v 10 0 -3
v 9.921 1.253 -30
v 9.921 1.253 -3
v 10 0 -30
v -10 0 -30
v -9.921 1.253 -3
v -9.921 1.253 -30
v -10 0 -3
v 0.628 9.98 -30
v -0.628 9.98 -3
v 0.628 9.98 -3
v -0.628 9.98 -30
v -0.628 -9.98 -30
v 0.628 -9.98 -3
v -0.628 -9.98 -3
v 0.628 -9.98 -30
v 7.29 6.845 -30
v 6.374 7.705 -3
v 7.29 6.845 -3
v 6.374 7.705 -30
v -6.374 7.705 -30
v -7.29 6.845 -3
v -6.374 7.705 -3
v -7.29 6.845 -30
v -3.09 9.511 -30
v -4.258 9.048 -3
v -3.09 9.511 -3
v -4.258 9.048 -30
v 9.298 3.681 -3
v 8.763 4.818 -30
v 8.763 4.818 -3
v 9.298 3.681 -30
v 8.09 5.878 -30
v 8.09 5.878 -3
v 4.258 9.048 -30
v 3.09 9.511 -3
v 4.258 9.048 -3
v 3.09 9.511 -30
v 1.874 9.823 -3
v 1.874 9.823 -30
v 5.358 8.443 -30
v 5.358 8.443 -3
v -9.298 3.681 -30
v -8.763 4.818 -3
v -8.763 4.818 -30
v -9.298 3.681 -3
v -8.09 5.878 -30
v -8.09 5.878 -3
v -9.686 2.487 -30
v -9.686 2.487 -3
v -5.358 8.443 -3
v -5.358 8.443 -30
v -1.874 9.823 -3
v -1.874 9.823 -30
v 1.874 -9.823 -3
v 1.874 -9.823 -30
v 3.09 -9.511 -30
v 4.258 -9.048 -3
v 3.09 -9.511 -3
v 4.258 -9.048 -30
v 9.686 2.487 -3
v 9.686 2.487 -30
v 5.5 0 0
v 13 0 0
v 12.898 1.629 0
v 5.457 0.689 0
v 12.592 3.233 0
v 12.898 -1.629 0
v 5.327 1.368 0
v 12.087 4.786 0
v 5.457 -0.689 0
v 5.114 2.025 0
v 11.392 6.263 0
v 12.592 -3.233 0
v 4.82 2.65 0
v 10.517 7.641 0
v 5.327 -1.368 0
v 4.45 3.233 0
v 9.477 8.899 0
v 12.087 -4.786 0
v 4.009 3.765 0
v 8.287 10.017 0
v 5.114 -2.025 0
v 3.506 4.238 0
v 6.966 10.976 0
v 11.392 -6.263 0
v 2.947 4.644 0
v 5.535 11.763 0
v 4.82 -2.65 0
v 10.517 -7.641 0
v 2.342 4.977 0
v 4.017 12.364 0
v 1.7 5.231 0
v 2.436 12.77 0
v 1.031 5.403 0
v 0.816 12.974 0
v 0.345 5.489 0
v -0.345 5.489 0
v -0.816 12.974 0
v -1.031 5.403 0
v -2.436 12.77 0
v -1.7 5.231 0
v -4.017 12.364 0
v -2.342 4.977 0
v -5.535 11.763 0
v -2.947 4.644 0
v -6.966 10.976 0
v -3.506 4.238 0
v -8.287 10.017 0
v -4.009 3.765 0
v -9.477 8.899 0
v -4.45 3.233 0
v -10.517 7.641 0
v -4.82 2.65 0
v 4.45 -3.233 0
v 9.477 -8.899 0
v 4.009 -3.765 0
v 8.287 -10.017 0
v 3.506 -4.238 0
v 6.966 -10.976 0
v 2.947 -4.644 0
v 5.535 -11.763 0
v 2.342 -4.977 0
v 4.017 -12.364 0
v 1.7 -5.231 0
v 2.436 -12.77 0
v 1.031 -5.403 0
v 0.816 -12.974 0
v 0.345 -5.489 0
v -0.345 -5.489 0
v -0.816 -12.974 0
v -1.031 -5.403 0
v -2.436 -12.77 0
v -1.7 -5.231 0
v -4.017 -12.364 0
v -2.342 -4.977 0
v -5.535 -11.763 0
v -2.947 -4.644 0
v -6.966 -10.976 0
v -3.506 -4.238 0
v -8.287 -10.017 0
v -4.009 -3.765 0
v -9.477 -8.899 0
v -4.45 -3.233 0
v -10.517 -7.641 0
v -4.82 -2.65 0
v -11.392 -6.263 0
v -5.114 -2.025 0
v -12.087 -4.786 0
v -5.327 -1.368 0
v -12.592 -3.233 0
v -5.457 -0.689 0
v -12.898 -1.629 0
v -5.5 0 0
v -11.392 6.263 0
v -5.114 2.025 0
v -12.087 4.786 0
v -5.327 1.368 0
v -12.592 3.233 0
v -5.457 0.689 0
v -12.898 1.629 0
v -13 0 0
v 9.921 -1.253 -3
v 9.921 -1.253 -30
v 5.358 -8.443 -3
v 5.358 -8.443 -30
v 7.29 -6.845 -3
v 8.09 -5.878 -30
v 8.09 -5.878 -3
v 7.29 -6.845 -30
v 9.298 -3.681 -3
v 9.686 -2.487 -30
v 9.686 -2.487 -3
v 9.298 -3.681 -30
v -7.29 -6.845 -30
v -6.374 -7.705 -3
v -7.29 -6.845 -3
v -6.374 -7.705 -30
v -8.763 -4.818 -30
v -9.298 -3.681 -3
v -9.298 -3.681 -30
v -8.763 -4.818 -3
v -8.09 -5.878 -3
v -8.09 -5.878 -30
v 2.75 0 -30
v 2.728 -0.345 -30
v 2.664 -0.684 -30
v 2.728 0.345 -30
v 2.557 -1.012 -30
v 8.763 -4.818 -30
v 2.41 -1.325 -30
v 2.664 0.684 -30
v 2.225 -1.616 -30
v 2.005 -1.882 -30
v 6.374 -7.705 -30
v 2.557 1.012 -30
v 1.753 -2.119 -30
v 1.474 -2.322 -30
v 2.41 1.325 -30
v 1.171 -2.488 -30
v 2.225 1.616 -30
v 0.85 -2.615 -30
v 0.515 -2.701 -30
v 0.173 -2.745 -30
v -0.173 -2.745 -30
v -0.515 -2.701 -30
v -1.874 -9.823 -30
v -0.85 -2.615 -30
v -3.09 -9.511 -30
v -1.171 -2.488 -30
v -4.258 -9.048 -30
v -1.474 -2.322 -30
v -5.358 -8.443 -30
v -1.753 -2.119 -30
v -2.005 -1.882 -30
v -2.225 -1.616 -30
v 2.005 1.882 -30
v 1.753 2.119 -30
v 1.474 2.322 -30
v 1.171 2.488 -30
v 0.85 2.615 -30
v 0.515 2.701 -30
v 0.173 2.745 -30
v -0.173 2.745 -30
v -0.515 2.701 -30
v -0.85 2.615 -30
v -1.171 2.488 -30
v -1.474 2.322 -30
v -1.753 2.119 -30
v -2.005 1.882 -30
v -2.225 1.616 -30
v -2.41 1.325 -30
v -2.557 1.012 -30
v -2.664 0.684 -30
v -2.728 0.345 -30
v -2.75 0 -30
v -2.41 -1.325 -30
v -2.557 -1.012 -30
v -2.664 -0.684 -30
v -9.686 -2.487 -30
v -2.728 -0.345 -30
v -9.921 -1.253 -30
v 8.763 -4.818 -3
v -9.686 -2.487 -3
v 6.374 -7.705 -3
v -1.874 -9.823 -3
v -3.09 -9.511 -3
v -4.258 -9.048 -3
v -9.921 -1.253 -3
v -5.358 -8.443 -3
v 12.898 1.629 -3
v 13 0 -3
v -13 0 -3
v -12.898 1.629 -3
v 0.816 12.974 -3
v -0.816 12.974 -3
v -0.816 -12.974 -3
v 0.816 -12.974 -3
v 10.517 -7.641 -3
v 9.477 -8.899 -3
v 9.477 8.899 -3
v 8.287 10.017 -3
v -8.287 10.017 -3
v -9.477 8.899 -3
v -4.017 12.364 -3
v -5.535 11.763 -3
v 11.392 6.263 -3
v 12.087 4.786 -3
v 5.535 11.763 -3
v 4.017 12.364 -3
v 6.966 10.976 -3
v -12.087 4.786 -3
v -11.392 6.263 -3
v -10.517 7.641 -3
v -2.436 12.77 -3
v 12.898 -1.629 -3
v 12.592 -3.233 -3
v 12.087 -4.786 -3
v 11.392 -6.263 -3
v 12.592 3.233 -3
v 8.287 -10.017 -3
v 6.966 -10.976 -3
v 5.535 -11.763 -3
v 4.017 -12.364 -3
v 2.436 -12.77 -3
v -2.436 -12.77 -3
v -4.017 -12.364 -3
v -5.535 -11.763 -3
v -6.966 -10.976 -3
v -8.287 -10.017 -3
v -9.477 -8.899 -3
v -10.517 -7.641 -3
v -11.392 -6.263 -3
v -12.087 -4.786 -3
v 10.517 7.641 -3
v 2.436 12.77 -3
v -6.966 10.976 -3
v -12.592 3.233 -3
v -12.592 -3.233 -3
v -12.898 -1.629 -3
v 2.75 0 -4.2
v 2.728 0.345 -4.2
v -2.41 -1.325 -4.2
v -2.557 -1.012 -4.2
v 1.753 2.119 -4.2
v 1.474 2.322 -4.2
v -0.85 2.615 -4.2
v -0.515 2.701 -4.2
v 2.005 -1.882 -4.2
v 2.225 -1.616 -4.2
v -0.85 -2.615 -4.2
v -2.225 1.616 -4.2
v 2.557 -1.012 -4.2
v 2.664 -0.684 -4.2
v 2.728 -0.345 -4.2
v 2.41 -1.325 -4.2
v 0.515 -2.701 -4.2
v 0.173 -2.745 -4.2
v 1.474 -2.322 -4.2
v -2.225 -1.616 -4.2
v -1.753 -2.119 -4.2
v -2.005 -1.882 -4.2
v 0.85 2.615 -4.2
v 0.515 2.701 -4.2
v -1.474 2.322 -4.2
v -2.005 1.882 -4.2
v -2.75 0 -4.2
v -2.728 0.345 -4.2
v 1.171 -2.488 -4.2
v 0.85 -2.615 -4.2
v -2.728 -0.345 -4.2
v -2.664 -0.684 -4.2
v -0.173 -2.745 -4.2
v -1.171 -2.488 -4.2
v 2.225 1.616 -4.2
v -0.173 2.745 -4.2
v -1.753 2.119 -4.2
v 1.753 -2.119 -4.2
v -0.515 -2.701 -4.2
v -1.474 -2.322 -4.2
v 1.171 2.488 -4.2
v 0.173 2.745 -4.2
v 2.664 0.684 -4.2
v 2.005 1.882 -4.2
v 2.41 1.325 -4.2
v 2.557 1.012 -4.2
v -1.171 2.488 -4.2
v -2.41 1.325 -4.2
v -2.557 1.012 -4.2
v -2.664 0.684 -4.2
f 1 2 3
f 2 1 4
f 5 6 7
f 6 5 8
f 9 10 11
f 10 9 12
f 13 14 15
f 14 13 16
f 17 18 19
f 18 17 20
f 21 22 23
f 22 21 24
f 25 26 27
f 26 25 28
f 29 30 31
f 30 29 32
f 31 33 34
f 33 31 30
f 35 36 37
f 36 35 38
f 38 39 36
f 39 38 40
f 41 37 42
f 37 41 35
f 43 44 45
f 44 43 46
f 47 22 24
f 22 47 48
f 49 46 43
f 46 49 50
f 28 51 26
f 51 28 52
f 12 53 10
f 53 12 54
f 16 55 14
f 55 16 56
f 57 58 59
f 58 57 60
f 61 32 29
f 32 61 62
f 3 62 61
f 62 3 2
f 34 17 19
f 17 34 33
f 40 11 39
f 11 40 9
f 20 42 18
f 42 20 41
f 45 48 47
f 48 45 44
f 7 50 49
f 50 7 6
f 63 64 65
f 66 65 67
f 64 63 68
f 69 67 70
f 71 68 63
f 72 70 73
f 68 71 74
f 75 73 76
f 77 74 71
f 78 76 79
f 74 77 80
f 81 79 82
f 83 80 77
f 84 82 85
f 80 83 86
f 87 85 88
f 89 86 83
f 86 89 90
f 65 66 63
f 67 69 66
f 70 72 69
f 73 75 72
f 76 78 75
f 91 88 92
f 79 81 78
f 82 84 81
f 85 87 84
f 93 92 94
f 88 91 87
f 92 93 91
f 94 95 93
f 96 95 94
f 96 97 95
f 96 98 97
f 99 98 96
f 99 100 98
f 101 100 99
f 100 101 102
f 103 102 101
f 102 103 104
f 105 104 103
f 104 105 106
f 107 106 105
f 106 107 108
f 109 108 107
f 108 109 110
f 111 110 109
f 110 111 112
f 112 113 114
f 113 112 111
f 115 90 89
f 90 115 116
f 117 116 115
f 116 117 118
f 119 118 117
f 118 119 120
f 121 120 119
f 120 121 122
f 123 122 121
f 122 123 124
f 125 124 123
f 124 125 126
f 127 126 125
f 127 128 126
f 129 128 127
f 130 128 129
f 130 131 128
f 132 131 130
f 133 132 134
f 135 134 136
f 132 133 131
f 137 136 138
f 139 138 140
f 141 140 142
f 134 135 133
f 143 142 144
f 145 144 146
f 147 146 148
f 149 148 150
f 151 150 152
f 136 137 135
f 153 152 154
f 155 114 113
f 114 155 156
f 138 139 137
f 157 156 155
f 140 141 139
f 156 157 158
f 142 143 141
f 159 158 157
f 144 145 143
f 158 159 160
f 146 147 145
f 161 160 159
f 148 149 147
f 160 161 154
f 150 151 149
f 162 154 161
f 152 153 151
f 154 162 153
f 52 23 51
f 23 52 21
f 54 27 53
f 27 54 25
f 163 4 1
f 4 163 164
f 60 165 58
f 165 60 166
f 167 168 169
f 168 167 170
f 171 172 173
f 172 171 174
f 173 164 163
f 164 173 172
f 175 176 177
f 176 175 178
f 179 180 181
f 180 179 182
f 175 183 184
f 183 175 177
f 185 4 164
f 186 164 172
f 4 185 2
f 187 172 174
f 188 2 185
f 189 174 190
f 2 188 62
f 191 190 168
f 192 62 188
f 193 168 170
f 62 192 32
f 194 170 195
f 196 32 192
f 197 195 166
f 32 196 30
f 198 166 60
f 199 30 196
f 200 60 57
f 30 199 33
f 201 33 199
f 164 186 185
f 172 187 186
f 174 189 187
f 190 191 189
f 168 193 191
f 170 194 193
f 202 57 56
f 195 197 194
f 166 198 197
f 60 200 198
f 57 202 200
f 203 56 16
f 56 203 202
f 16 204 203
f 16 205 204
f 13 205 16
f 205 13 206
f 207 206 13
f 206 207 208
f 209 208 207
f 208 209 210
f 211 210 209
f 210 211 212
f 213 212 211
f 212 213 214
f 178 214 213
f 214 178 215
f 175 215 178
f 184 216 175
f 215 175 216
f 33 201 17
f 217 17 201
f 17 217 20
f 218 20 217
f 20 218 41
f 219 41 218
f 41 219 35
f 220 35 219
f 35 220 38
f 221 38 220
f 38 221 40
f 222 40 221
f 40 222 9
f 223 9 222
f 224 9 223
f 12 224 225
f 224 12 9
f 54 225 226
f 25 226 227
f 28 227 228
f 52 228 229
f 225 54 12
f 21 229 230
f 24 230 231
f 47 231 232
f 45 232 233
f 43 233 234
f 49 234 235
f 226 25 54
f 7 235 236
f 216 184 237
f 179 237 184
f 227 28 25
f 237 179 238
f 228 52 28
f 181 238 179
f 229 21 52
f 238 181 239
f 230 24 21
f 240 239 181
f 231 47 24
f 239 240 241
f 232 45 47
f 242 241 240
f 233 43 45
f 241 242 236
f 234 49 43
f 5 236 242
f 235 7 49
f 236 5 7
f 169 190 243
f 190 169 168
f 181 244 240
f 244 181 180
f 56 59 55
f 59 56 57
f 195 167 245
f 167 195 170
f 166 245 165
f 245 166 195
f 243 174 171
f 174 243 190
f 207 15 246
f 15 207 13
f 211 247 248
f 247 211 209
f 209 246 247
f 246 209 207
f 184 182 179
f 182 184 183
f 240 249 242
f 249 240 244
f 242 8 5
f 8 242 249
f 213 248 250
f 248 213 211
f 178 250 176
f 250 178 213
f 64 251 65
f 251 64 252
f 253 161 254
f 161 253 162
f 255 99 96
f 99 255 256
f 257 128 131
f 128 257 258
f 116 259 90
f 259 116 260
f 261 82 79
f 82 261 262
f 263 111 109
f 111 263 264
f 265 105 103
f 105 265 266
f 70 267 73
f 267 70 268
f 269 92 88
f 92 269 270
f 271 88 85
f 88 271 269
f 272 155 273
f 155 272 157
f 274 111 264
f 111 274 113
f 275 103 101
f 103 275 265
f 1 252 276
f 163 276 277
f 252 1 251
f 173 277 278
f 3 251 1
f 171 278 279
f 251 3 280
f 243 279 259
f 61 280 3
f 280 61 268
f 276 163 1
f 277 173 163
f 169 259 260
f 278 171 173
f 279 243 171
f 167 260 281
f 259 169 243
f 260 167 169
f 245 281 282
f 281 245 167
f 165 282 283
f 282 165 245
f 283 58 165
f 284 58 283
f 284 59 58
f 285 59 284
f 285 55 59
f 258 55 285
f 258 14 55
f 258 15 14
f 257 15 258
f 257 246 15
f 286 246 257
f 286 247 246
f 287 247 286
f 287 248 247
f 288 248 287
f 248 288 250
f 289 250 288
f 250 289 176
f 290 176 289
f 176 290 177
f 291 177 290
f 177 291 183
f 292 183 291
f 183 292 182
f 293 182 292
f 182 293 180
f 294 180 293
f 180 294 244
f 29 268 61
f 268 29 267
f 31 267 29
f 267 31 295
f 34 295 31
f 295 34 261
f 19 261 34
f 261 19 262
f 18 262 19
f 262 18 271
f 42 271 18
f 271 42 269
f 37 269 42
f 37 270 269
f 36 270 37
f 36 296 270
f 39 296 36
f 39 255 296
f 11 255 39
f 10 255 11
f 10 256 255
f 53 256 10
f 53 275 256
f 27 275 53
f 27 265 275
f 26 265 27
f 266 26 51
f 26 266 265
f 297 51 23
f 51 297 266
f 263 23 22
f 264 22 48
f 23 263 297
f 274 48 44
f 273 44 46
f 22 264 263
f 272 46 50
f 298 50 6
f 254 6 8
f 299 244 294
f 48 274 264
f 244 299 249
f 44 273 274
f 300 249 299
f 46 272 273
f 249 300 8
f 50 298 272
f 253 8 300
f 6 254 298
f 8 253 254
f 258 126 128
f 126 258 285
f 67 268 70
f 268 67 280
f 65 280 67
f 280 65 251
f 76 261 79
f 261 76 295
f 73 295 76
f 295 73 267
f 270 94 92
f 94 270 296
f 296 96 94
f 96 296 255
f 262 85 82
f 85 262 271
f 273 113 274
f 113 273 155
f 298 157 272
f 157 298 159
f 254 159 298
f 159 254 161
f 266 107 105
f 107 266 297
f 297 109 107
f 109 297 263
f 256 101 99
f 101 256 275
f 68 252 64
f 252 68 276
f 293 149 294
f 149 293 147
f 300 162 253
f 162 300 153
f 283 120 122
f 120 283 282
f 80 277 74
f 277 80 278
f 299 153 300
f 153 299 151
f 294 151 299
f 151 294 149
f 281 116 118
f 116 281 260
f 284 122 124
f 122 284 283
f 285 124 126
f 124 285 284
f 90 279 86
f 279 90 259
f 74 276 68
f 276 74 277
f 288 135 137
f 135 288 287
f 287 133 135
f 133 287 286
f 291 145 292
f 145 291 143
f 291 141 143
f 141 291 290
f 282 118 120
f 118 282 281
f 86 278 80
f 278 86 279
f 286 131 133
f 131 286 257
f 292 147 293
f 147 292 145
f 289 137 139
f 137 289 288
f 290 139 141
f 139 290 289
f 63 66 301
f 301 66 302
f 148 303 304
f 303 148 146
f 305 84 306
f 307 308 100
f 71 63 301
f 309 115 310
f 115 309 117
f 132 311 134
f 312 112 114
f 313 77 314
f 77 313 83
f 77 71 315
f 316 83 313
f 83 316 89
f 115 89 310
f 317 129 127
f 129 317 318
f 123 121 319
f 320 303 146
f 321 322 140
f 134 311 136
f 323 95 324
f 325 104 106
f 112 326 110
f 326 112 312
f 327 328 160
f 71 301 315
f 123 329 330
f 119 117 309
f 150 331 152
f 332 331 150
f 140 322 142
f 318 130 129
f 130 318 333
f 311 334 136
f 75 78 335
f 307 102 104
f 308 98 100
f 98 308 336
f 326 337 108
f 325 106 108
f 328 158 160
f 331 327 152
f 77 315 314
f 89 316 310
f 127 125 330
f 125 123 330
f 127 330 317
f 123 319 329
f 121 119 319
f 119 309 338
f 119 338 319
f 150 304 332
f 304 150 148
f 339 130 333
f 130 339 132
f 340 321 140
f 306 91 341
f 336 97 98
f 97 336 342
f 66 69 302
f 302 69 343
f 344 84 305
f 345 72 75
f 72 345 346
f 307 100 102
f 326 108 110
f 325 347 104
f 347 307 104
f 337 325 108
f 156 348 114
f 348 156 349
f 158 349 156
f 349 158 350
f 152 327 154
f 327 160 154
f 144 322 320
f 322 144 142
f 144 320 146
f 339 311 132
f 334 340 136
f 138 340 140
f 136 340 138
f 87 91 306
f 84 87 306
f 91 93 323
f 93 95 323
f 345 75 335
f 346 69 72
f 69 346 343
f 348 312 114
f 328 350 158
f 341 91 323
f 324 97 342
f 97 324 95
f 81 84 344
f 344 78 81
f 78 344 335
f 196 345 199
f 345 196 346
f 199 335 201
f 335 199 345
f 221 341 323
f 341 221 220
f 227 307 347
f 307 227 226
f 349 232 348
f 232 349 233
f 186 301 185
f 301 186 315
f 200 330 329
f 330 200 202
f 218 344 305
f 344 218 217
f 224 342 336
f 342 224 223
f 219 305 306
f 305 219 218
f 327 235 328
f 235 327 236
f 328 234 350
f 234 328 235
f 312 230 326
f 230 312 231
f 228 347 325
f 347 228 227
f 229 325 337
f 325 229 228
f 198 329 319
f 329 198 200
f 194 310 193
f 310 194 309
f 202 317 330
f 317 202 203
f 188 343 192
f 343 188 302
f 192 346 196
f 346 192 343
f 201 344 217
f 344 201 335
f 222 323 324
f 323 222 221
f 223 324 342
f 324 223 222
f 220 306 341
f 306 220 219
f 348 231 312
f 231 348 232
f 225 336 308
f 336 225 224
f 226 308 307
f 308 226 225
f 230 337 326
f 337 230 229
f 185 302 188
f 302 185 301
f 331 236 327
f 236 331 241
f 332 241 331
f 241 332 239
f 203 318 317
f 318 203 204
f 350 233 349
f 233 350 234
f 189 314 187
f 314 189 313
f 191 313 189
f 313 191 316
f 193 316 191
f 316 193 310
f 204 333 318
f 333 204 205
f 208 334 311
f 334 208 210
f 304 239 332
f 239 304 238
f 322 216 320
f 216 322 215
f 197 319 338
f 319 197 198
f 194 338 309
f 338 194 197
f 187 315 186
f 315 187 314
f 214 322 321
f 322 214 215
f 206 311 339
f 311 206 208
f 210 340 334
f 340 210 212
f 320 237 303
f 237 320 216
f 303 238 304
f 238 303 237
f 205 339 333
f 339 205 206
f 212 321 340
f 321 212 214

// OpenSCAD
$fn = 50;


difference() {
	union() {
		translate(v = [0, 0, -30.0000000000]) {
			cylinder(h = 30, r = 10.0000000000);
		}
		translate(v = [0, 0, -3.0000000000]) {
			cylinder(h = 3, r = 13.0000000000);
		}
	}
	union() {
		translate(v = [0, 0, 0]) {
			rotate(a = [0, 0, 0]) {
				difference() {
					union() {
						#translate(v = [0, 0, -30.0000000000]) {
							cylinder(h = 30, r = 2.2500000000);
						}
						#translate(v = [0, 0, -4.2000000000]) {
							cylinder(h = 4.2000000000, r1 = 2.7500000000, r2 = 5.5000000000);
						}
						#translate(v = [0, 0, -30.0000000000]) {
							cylinder(h = 30, r = 2.7500000000);
						}
						#translate(v = [0, 0, -30.0000000000]) {
							cylinder(h = 30, r = 2.2500000000);
						}
					}
					union();
				}
			}
		}
	}
}
